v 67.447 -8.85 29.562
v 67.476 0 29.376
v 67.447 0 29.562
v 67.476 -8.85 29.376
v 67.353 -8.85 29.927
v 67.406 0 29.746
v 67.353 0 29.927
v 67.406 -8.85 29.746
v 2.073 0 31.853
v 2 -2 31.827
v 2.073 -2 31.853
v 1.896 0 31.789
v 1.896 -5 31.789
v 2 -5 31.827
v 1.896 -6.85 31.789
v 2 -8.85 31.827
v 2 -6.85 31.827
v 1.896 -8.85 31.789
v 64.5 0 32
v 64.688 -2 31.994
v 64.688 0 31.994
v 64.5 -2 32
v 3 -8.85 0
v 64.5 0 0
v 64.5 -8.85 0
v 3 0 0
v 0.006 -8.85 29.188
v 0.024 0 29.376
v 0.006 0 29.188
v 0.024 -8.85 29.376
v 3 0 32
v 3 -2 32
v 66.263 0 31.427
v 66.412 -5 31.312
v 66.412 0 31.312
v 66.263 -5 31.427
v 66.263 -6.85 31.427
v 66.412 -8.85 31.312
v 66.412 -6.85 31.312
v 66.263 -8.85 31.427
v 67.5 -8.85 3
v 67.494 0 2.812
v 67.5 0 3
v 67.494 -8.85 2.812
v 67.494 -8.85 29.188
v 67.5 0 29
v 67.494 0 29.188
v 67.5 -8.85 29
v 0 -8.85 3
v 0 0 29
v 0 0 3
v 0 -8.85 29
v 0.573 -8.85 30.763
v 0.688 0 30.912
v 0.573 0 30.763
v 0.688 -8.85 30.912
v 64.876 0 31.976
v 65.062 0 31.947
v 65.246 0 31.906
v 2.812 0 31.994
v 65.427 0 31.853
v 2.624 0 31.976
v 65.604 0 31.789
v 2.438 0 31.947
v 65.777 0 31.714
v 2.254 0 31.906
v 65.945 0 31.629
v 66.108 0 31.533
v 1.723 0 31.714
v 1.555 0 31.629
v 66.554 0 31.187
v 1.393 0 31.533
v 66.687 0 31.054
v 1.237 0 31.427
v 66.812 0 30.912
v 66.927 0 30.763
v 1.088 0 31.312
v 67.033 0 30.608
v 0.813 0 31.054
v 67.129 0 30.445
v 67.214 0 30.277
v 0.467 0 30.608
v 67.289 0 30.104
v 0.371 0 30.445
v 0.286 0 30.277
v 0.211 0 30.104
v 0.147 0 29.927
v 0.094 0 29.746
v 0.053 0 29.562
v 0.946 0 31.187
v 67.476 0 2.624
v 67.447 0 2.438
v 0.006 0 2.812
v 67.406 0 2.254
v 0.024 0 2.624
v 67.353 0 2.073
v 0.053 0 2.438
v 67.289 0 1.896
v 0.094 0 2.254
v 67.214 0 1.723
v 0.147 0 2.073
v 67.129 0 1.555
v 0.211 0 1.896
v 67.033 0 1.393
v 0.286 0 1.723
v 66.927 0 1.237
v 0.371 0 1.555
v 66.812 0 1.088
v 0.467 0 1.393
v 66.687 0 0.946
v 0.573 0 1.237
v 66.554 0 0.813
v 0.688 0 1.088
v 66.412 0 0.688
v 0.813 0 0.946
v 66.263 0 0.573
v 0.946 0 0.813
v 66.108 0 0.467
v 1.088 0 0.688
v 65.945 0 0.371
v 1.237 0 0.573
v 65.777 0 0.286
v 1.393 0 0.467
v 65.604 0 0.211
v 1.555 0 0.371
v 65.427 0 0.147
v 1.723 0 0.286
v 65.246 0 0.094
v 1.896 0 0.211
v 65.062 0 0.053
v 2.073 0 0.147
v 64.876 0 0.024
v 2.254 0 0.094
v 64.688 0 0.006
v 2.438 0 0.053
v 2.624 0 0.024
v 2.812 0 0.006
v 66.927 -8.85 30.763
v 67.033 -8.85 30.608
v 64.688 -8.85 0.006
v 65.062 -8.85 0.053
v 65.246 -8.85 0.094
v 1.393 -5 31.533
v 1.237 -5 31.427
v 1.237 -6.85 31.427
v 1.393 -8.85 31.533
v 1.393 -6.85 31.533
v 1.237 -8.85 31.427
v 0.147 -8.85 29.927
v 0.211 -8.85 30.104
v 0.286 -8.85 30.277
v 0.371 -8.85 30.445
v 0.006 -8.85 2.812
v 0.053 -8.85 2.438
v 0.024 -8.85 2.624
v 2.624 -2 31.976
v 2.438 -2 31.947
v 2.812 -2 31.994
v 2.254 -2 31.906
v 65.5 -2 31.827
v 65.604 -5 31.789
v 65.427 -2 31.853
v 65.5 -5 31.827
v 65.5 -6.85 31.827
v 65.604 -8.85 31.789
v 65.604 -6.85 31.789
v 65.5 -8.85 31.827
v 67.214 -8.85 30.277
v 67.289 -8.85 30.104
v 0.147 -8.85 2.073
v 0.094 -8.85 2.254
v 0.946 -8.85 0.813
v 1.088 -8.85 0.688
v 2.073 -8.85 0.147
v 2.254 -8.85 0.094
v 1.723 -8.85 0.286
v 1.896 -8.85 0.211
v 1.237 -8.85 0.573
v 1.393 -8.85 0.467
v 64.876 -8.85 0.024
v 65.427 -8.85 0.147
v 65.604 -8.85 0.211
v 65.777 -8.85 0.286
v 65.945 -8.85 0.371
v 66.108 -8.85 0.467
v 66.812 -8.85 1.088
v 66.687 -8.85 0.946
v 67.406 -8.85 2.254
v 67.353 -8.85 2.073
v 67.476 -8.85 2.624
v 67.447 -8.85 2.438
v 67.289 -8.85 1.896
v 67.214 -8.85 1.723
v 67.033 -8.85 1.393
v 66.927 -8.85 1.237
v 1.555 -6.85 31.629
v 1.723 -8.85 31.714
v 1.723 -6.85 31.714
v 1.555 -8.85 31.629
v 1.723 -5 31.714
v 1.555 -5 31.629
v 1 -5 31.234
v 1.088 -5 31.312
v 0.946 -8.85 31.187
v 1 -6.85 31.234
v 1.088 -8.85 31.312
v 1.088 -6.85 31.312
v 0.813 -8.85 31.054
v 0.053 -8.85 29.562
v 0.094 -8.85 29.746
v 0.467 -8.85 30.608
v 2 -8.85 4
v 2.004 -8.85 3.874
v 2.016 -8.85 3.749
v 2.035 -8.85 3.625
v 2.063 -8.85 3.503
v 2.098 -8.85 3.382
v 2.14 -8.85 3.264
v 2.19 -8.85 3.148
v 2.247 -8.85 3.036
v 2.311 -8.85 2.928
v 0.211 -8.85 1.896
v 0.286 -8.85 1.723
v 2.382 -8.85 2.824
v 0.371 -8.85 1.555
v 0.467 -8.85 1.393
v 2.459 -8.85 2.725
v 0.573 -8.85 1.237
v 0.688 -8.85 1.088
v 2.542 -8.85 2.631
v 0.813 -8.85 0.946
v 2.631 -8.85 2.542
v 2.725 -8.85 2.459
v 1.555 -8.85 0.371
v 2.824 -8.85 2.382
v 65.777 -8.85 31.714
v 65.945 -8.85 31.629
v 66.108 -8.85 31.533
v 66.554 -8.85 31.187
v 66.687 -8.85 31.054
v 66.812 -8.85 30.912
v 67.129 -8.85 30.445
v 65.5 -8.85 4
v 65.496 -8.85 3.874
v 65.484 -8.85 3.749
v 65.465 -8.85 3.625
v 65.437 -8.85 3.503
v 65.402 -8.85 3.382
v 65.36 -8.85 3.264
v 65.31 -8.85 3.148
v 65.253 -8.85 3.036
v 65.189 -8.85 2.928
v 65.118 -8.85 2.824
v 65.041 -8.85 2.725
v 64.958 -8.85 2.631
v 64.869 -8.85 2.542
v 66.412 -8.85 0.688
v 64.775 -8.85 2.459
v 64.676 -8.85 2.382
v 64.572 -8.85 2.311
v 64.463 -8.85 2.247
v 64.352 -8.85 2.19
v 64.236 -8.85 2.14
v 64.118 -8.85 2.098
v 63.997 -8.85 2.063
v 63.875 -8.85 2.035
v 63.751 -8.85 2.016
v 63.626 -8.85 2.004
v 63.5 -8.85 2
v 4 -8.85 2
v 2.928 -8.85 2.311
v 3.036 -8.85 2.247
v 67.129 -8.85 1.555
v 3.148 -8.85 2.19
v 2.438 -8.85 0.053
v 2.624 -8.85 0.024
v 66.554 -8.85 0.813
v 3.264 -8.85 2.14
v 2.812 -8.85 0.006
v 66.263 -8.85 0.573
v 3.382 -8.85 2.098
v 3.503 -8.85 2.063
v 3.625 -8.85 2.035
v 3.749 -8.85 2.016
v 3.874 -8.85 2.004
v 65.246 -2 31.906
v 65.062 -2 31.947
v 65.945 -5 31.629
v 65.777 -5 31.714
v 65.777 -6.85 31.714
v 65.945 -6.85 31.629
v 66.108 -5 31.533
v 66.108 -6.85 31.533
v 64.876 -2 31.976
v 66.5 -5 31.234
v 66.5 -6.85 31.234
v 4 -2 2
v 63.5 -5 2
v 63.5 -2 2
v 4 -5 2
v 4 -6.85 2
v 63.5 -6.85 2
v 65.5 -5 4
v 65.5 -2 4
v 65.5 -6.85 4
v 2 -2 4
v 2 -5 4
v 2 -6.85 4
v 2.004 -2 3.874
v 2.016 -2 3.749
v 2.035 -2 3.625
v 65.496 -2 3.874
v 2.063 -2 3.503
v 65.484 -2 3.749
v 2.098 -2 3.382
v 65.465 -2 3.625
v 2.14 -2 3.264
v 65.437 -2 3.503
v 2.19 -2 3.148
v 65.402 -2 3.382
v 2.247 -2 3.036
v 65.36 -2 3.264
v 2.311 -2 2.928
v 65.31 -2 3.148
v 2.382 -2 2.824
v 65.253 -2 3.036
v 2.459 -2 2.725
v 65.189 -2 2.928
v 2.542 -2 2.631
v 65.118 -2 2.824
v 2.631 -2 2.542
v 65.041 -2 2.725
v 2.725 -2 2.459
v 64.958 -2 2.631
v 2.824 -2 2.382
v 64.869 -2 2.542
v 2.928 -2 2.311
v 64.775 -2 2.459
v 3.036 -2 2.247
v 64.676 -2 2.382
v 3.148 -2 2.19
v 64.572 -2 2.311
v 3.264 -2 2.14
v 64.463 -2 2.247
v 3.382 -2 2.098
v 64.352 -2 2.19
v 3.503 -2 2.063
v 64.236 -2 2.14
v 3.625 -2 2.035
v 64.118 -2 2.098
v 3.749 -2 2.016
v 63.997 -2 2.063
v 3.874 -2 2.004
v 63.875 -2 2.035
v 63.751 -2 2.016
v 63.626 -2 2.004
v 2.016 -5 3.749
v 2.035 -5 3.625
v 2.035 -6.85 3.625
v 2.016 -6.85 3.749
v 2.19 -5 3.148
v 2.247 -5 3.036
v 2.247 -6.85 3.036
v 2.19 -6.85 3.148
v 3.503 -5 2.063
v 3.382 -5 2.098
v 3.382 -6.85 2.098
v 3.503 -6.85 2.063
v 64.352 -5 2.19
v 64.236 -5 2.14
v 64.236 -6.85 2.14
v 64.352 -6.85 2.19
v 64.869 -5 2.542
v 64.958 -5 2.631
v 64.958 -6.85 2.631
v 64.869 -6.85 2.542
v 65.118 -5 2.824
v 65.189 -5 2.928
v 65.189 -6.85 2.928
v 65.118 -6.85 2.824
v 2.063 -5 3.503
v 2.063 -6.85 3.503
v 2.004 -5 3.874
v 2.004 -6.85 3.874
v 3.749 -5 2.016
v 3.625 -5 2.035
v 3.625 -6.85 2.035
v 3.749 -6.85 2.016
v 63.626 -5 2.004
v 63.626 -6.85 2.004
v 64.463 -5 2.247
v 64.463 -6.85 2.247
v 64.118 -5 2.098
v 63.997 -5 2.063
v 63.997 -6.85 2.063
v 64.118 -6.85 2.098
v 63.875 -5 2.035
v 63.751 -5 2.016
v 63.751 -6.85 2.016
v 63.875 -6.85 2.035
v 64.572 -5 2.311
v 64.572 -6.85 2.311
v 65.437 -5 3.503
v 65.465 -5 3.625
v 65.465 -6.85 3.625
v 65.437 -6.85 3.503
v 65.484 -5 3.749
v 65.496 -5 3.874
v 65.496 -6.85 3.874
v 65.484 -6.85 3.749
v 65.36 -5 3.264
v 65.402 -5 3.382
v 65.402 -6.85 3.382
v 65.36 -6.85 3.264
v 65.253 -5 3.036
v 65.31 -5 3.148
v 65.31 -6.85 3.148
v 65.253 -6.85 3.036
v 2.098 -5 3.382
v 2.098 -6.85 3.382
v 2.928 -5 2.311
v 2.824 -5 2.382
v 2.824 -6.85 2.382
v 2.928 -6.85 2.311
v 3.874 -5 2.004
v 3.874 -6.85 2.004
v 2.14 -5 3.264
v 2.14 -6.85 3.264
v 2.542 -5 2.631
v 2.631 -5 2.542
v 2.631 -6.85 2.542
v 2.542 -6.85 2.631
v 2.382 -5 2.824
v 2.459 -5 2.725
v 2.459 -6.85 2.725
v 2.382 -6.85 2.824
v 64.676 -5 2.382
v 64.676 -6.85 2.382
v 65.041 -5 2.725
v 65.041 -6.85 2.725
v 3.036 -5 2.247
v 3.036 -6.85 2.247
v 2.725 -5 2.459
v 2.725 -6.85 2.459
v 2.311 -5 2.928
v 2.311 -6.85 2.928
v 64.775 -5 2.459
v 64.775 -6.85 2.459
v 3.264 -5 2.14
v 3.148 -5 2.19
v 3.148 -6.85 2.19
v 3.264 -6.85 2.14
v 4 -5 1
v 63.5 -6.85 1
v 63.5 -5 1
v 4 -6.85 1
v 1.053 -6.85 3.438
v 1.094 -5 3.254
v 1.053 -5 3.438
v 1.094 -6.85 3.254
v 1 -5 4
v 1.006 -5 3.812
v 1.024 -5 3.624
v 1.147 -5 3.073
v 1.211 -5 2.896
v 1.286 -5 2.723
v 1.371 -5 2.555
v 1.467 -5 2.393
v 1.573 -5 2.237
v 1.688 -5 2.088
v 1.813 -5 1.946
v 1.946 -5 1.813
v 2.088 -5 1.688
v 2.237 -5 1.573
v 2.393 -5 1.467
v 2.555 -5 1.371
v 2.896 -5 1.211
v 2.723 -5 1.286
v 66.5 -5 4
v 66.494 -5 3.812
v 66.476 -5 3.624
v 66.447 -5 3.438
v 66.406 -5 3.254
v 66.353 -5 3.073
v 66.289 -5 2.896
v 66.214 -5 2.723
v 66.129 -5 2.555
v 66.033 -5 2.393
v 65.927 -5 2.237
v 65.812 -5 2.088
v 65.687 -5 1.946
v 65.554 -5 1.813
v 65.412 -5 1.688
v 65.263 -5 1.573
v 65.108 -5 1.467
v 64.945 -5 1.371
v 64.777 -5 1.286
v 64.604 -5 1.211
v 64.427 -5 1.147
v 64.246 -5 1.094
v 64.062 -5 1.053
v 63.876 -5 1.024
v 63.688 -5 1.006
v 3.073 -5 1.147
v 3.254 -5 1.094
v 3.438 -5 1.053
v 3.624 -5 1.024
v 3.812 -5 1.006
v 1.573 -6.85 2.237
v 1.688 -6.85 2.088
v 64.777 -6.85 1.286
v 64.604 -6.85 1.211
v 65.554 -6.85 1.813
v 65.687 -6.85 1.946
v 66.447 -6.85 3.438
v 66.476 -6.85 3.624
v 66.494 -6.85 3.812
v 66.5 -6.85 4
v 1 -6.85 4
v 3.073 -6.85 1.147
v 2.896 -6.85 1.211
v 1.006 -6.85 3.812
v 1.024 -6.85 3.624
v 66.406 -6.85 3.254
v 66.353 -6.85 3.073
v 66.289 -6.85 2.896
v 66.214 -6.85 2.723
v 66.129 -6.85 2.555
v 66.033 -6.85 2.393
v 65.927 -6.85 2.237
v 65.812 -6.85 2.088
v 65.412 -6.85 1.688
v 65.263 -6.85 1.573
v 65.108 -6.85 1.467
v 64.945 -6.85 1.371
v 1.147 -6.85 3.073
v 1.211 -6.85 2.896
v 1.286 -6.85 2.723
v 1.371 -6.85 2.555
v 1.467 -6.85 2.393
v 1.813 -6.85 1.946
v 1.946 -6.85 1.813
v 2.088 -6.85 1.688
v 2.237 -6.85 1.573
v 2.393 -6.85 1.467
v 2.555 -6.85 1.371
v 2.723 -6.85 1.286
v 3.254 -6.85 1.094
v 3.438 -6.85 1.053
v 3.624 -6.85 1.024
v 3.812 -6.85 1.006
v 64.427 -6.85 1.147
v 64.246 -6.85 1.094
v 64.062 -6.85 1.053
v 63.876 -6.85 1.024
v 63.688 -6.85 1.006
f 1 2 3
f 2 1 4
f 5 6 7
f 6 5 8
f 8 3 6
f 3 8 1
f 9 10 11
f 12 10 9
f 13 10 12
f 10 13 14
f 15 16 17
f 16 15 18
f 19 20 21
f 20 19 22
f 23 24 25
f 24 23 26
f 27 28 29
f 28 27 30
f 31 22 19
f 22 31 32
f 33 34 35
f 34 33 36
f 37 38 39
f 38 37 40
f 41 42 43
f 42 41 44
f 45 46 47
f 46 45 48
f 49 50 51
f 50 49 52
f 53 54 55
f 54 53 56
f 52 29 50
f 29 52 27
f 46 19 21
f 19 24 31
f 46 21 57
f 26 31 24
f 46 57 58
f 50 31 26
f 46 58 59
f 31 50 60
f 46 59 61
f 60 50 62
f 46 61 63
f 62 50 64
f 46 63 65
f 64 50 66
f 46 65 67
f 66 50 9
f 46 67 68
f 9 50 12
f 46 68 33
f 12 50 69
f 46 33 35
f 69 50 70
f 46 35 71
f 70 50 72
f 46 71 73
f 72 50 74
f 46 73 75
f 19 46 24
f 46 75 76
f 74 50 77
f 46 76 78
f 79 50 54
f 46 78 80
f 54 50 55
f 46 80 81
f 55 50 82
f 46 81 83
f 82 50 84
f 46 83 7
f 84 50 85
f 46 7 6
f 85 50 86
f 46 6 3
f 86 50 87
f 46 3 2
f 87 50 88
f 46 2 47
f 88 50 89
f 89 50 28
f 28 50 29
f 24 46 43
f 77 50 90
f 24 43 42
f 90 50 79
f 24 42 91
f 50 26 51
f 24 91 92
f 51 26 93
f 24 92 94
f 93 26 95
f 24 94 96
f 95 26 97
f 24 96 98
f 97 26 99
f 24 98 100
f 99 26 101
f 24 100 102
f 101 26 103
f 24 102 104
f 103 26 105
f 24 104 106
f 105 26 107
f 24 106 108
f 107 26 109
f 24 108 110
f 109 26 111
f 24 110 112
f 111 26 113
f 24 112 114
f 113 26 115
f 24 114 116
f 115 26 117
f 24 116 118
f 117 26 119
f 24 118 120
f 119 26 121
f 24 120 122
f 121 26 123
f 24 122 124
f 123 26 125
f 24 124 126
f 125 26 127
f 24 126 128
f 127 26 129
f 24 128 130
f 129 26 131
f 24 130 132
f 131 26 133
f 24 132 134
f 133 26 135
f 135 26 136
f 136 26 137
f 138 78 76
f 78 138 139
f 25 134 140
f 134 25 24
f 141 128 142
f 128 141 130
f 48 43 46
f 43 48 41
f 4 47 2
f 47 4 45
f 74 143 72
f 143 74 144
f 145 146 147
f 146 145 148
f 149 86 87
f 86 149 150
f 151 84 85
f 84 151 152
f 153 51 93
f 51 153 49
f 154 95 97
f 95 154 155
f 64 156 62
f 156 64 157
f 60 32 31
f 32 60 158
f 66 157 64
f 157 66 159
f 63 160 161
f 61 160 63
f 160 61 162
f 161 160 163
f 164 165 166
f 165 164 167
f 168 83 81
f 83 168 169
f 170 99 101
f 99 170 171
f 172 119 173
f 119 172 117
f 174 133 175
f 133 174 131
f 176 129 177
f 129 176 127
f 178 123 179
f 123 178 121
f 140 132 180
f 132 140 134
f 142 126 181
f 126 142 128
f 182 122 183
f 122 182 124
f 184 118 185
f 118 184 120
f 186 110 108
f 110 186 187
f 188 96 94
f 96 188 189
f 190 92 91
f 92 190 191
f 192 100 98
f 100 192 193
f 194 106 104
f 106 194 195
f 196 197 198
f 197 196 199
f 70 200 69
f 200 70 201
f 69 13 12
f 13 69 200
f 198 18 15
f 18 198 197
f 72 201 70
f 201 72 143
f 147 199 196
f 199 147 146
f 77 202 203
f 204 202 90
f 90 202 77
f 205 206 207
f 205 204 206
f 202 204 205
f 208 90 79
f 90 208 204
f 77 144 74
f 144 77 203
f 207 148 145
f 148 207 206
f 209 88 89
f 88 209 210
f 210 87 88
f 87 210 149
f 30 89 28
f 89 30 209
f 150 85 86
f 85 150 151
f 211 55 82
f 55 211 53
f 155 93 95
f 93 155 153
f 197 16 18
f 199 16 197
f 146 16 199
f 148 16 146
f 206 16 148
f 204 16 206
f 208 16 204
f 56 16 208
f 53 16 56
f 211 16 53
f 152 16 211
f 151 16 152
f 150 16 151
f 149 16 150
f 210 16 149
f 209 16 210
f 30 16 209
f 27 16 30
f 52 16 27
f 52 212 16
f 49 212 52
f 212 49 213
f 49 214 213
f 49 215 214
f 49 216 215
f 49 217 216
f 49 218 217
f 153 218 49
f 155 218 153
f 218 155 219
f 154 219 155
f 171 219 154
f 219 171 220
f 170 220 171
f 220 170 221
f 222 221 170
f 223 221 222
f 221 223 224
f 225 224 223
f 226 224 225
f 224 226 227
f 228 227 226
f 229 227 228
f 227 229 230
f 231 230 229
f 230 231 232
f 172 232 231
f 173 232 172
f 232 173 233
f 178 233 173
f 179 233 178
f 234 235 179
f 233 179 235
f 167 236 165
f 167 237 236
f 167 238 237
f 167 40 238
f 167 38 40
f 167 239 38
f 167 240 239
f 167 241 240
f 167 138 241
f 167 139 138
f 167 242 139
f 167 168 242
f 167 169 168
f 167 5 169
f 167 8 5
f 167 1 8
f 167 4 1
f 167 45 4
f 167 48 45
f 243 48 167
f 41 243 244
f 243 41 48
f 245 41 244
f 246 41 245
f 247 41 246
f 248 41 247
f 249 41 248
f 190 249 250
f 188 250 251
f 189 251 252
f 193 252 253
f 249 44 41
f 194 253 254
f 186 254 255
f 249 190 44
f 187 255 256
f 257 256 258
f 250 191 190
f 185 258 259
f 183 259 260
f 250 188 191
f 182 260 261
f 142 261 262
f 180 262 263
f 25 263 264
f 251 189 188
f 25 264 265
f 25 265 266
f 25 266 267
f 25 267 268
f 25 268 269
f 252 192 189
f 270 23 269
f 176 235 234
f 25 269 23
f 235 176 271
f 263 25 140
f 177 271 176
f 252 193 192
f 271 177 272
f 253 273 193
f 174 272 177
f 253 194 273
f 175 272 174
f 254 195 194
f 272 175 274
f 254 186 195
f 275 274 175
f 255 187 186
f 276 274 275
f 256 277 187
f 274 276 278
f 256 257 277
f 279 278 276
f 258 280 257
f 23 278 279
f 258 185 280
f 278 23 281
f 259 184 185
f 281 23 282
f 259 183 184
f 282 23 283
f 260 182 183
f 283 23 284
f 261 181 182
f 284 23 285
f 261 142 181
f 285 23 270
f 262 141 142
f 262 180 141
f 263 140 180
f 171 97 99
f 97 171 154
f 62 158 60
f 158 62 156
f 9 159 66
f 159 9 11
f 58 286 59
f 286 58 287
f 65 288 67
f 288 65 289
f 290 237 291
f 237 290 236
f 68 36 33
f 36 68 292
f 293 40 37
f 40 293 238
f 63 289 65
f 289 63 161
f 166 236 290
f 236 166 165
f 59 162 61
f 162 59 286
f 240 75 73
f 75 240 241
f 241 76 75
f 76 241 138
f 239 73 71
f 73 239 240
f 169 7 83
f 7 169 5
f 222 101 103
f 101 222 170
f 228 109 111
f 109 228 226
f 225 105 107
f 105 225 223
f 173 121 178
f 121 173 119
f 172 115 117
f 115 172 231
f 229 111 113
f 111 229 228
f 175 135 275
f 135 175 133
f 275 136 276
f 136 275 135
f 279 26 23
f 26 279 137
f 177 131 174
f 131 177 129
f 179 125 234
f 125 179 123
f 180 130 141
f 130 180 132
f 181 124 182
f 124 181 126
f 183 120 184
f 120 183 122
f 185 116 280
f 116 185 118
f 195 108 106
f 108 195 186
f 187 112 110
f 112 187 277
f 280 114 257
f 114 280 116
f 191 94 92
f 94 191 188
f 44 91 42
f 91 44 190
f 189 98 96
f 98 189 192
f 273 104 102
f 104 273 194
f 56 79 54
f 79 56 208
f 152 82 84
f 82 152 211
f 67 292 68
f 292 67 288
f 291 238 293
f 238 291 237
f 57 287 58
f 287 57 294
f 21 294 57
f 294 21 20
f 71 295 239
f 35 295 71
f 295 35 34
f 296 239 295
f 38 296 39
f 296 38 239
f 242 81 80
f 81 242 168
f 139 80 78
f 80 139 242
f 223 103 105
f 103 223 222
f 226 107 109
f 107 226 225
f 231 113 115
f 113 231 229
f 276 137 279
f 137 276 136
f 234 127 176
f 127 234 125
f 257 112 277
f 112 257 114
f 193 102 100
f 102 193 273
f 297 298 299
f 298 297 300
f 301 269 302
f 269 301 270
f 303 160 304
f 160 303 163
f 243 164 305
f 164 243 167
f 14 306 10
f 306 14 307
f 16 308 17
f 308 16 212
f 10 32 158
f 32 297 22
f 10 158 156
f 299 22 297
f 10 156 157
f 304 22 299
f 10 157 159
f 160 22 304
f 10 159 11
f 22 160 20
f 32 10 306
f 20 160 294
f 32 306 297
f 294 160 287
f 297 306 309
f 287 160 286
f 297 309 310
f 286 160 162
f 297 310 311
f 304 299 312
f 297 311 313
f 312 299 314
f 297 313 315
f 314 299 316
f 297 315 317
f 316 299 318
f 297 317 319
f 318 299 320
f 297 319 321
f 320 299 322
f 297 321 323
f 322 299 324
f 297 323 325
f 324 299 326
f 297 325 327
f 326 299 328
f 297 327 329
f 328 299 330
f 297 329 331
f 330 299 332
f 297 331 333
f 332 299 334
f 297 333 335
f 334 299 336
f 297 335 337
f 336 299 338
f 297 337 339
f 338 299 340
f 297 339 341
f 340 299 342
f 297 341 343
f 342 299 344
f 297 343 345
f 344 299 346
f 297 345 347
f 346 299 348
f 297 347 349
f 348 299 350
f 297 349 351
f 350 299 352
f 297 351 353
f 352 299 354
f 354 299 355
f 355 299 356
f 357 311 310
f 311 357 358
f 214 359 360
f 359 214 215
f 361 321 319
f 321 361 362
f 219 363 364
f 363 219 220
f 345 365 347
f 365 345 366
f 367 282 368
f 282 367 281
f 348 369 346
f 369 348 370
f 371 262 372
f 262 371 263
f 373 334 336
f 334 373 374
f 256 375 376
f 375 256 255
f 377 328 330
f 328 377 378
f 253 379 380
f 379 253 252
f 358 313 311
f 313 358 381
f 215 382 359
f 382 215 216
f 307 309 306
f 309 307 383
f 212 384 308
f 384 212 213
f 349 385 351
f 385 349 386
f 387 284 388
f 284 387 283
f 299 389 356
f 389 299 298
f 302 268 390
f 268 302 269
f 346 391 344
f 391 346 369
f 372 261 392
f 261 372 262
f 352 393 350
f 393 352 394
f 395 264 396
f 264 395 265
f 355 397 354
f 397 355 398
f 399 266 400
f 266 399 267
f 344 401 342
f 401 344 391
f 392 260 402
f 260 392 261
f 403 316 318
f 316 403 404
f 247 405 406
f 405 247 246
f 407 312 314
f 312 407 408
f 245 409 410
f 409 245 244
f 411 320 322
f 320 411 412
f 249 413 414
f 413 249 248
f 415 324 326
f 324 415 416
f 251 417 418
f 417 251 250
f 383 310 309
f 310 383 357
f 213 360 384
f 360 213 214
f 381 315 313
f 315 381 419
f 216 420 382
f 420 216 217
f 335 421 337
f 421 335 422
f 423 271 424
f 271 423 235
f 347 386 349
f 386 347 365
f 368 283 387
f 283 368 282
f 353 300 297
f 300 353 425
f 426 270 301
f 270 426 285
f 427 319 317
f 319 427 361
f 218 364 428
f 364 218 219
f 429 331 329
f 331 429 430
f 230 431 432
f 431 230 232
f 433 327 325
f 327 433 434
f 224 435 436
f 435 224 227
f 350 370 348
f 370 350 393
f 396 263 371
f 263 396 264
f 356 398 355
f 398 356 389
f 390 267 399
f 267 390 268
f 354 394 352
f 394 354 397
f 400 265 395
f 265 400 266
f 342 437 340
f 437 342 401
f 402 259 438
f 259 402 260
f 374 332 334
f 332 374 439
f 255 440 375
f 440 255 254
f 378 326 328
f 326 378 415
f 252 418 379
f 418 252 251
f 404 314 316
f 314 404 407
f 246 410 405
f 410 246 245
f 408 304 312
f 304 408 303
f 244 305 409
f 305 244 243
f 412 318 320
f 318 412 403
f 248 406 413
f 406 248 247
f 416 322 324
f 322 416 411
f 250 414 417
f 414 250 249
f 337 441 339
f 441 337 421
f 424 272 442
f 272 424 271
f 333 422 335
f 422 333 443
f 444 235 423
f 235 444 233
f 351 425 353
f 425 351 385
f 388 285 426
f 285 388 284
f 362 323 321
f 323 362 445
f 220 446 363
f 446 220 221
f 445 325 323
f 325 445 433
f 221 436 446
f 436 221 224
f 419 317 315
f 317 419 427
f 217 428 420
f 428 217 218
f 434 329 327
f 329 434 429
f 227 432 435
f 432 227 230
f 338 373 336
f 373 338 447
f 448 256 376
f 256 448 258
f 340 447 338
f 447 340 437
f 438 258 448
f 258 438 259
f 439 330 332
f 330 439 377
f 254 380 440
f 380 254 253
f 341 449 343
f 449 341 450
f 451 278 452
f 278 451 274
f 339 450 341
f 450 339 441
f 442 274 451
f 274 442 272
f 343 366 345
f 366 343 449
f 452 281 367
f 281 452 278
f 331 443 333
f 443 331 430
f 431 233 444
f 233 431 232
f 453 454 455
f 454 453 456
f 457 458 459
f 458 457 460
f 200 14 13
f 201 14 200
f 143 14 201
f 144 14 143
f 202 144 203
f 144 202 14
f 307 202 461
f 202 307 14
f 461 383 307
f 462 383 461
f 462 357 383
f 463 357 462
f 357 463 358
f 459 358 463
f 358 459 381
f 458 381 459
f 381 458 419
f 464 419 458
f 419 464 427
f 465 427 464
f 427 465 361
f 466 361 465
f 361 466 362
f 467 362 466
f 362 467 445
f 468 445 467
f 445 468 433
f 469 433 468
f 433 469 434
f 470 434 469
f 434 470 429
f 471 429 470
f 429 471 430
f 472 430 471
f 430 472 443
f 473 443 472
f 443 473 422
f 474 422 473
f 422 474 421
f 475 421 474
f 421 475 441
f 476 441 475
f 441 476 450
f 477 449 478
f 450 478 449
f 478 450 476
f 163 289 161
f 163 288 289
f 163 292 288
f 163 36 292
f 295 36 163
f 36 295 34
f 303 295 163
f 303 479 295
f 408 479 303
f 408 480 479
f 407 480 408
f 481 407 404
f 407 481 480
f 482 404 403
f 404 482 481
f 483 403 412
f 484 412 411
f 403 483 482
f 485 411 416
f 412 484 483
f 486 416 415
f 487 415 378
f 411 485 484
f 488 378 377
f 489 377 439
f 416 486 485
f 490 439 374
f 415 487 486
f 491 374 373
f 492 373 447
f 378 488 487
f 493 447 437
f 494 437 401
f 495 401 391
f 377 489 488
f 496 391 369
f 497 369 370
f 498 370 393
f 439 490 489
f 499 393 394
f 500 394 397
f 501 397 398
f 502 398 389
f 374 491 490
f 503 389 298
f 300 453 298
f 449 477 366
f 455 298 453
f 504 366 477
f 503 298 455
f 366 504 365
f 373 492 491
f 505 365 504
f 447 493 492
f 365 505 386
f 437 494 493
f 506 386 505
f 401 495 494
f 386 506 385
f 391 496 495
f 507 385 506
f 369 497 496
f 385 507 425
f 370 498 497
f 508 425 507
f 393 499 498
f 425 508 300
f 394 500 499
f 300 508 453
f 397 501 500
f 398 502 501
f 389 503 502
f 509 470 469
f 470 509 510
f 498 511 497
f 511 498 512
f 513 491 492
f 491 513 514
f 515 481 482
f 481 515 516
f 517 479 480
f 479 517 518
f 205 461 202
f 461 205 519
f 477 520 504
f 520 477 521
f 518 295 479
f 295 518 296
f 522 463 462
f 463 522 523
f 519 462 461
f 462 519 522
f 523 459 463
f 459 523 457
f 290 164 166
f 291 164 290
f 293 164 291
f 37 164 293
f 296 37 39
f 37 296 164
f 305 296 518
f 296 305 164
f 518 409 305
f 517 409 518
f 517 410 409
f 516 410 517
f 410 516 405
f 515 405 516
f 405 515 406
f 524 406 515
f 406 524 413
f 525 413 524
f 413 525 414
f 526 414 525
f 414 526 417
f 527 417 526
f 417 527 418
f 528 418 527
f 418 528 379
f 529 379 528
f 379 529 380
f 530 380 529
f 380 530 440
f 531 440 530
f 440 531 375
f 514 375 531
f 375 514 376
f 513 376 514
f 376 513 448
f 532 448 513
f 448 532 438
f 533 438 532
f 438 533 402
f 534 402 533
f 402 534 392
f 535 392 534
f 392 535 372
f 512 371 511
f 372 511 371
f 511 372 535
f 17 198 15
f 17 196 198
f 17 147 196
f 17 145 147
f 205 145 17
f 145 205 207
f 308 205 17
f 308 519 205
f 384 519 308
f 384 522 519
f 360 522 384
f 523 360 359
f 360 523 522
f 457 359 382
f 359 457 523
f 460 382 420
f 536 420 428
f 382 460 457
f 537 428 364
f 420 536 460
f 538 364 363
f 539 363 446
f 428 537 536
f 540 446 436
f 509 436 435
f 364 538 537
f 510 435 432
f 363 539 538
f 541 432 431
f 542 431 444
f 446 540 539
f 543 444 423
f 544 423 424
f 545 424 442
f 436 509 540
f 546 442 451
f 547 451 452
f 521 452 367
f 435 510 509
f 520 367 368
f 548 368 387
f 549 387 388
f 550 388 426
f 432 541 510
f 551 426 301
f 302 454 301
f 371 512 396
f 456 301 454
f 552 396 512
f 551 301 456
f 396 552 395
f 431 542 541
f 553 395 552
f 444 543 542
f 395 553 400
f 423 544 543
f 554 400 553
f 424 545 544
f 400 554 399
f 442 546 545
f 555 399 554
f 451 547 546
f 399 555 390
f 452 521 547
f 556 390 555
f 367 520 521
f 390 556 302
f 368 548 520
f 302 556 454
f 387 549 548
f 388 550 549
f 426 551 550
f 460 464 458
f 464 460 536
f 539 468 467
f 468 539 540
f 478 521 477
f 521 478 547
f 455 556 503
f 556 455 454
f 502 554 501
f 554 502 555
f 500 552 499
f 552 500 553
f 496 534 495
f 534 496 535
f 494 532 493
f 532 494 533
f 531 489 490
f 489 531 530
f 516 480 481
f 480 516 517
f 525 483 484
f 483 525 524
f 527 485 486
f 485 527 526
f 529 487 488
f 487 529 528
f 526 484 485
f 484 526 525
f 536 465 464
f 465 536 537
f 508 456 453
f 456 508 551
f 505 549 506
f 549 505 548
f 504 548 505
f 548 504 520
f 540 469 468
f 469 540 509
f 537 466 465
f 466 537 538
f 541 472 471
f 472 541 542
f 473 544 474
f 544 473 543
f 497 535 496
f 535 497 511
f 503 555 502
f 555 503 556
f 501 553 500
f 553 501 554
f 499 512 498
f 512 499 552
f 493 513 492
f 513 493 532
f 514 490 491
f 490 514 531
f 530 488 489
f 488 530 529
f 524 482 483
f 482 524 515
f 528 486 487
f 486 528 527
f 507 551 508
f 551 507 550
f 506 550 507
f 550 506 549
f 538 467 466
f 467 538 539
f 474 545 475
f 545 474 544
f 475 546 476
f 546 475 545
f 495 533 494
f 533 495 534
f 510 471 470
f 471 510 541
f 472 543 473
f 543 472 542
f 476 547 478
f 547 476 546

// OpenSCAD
// file: common.scad
// A library of common modules, functions and variables

// Extra dimension to remove ambiguity of walls
ex = 0.001;

// Hole dimension correction - if 3D printed holes turn out too small,
// increase the value (e.g. 1.1 = 110%), or reduce the value (e.g. 0.9 = 90%).
// Default value is 1.0 (100%)
hdc = 1.1;

// Some nuts and bolts dimensions
m3_bolt_head_dia = 6*hdc;
m3_bolt_head_height = 2;
m3_dia = 3*hdc;


module rounded_rect(x, y, z, radius = 1) {
    // Draws a rounded rectangle
    translate([radius,radius,0]) //move origin to outer limits
	linear_extrude(height=z)
		minkowski() {
			square([x-2*radius,y-2*radius]); //keep outer dimensions given by x and y
			circle(r = radius, $fn=100);
		}
}


module cylinder_quarter(r, h){
    // Draws quarter of a cylinder
    difference(){
        cylinder(r=r, h=h);
        translate ([-r-ex, -r-ex, -ex]) cube([2*r + 2*ex, r + ex, h + 2*ex]);
        translate ([-r-ex, -ex, -ex]) cube([r + ex, r + ex, h + 2*ex]);
    }
}


module header_pin(rows=1, columns=1){
    // Draws 2.54 mm male header pins
    base_width = 2.54;
    base_height = 2.54;
    header_width = 0.508;
    header_height = 5.08;
    trans = base_width/2 - header_width/2;

    for (i = [0: rows - 1]){
        for (j = [0: columns -1]){
            translate([j*base_width, i*base_width, 0]){
                color("Black") cube([base_width, base_width, base_height]);
                translate([trans , trans, base_height])
                    color("Khaki") cube([header_width, header_width, header_height]);
            }
        }
    }

}

module m3_bolt(length = 10){
    // M3 bolt mockup
    union(){
        cylinder(d = m3_dia, h = length);
        translate([0, 0, length - ex - m3_bolt_head_height]) 
            cylinder(d = m3_bolt_head_dia, h = m3_bolt_head_height + ex);
    }
}

module m3_nut_trap(){
    // Makes M3 nut trap inset
    cylinder(r=5.5/2/cos(180/6)*hdc, h=2, $fn=6);
}

module cross_beams(rect_a, rect_b, beam_width){
    // Cross beams in the ractangle with sides a and b
    diag = sqrt(rect_a*rect_a + rect_b*rect_b);
    rot = atan2(rect_b, rect_a);
    

    translate([rect_a/2, rect_b/2, beam_width/2])
    difference(){
        union(){
            rotate(rot) cube([diag, beam_width, beam_width], true);
            rotate(-rot) cube([diag, beam_width, beam_width], true);
        }
        difference(){
            cube([rect_a + 2*beam_width, rect_b + 2*beam_width, beam_width + 2*ex], true);
            cube([rect_a, rect_b, beam_width + 4*ex], true);
        }
    }
}
// file: rpi_zero_w.scad
// RPi Zero W board 3D model

include <common.scad>;

// Defines smoothness of rounded objects
$fn = 80;

// Board dimensions
pi_length = 65;
pi_width = 30;
pi_height = 1.3;
pi_corner_radius = 3;
pi_connector_peek = 1; // how much connectors stick out
pi_sd_peek = 3.5; // how much inserted SD card sticks out

// Mount holes dimensions
pi_mh_dia = 2.75;
pi_mh_center = 3.5;
pi_mh_xy = [ [pi_mh_center, pi_mh_center, -ex],
             [pi_length - pi_mh_center, pi_mh_center, -ex],
             [pi_length - pi_mh_center, pi_width - pi_mh_center, -ex],
             [pi_mh_center, pi_width - pi_mh_center, -ex]
           ];

// HDMI connector dimensions
pi_hdmi_length = 11.2;
pi_hdmi_width = 7.6;
pi_hdmi_height = 3.5;
pi_hdmi_cx = 12.4; // center x coordinate of conector

// USB connector dimensions
pi_usb_length = 7.5;
pi_usb_width = 5.7;
pi_usb_height = 2.7;
pi_usb1_cx = 41.4; // center x coordinate of USB 1
pi_usb2_cx = 54.0; // center x coordinate of USB 2

// SD card connector dimensions
pi_sd_length = 12;
pi_sd_height = 1.5;
pi_sd_cy = 16.9; // center y coordinate of SD card connector

// Camera connector dimensions
pi_camc_length = 17.0;
pi_camc_width = 4.0;
pi_camc_height = 1.0;
pi_cam_cy = pi_width/2; // center y coordinate of camera connector

// GPIO dimensions
pi_gpio_length = 50.8;
pi_gpio_width = 5.08;

// Processor dimensions
pi_proc_width = 12;
pi_proc_height = 2;
pi_proc_cx = 26;
pi_proc_cy = 13;

// Entry point, uncomment the line bellow to see the object
//rpi_zero_w();

module rpi_zero_w(){
    pi_board();
    translate([0, 0, pi_height]) pi_connectors();
    translate([pi_proc_cx - pi_proc_width/2, pi_proc_cy - pi_proc_width/2, pi_height])
        color("Black") cube([pi_proc_width, pi_proc_width, pi_proc_height]);
}

module pi_board(){
    difference(){
        color("DarkGreen") rounded_rect(pi_length, pi_width, pi_height, pi_corner_radius);
        // Mount holes
        for (i = [0:len(pi_mh_xy)-1]) pi_mount_hole(pi_mh_xy [i]);
    }
}

module pi_mount_hole(vect){
    translate(vect) color("LightYellow") cylinder(d=pi_mh_dia, pi_height + 2*ex);
}

module pi_connectors(){
    // Draw side connectors
    translate([0, -pi_connector_peek, 0]) color("Silver"){
        translate([pi_hdmi_cx - pi_hdmi_length/2, 0, 0]) 
            cube([pi_hdmi_length, pi_hdmi_width, pi_hdmi_height]);
        translate([pi_usb1_cx - pi_usb_length/2, 0, 0]) pi_usb();
        translate([pi_usb2_cx - pi_usb_length/2, 0, 0]) pi_usb();
    }
    // Draw SD card connector
    translate([pi_connector_peek, pi_sd_cy - pi_sd_length/2, 0]) {
        color("Silver") cube([pi_sd_length, pi_sd_length, pi_sd_height]);
        translate([-pi_connector_peek - pi_sd_peek, 0.5, 0.1])
            color("Black") 
            cube([pi_connector_peek + pi_sd_peek, pi_sd_length - 1, pi_sd_height - 0.2]);
    }
    // Draw camera connector
    translate([pi_length + pi_connector_peek - pi_camc_width,
                    pi_cam_cy - pi_camc_length/2, 0]) color("Beige")
            cube([pi_camc_width, pi_camc_length, pi_camc_height]);
    // Draw GPIO 2x20 headers
    translate([pi_length/2 - pi_gpio_length/2, pi_width - pi_mh_center - pi_gpio_width/2, 0]) 
        header_pin(2, 20);
}

module pi_usb(){
    cube([pi_usb_length, pi_usb_width, pi_hdmi_height]);
}
// main file
// Unicorn pHAT diffuser

include <rpi_zero_w.scad>

// tolerance, should be adjusted for different printers
tol = 0.25;

// Unicorn pHAT dimensions
uph_height = 1.6;


// diffuser dimensions
d_wall_edge = 2; // how thick is the edge
d_wall_slot = 1; // how deep is the edge slot
d_wall_top = 2; // diffuser thickness
d_length = pi_length + 2*d_wall_edge - 2*d_wall_slot + 2*tol;
d_width = pi_width + d_wall_edge;
d_led_height = 2; // LED height over PCB
d_offset = 1; // how far is diffuser from LEDs
d_edge_height = uph_height + d_led_height + d_offset + tol + 2;
d_height = d_wall_top + d_edge_height;
d_corner_radius = pi_corner_radius + d_wall_edge - 2*d_wall_slot;

// Entry point
rotate([90, 0, 0]) unicorn_phat_diffuser();

module unicorn_phat_diffuser(){
    difference(){
        rounded_rect(d_length, d_width, d_height, d_corner_radius);
        translate([d_wall_edge, d_wall_edge, d_wall_top])
            rounded_rect(pi_length - 2*d_wall_slot + 2*tol, pi_width + 10, 
                         d_edge_height + ex, pi_corner_radius - d_wall_slot);
        translate([d_wall_edge - d_wall_slot, d_wall_edge - d_wall_slot, 
                                        d_wall_top + d_led_height + d_offset])
            rounded_rect(pi_length + 2*tol, pi_width + 10, uph_height + tol, pi_corner_radius);
    }
}
